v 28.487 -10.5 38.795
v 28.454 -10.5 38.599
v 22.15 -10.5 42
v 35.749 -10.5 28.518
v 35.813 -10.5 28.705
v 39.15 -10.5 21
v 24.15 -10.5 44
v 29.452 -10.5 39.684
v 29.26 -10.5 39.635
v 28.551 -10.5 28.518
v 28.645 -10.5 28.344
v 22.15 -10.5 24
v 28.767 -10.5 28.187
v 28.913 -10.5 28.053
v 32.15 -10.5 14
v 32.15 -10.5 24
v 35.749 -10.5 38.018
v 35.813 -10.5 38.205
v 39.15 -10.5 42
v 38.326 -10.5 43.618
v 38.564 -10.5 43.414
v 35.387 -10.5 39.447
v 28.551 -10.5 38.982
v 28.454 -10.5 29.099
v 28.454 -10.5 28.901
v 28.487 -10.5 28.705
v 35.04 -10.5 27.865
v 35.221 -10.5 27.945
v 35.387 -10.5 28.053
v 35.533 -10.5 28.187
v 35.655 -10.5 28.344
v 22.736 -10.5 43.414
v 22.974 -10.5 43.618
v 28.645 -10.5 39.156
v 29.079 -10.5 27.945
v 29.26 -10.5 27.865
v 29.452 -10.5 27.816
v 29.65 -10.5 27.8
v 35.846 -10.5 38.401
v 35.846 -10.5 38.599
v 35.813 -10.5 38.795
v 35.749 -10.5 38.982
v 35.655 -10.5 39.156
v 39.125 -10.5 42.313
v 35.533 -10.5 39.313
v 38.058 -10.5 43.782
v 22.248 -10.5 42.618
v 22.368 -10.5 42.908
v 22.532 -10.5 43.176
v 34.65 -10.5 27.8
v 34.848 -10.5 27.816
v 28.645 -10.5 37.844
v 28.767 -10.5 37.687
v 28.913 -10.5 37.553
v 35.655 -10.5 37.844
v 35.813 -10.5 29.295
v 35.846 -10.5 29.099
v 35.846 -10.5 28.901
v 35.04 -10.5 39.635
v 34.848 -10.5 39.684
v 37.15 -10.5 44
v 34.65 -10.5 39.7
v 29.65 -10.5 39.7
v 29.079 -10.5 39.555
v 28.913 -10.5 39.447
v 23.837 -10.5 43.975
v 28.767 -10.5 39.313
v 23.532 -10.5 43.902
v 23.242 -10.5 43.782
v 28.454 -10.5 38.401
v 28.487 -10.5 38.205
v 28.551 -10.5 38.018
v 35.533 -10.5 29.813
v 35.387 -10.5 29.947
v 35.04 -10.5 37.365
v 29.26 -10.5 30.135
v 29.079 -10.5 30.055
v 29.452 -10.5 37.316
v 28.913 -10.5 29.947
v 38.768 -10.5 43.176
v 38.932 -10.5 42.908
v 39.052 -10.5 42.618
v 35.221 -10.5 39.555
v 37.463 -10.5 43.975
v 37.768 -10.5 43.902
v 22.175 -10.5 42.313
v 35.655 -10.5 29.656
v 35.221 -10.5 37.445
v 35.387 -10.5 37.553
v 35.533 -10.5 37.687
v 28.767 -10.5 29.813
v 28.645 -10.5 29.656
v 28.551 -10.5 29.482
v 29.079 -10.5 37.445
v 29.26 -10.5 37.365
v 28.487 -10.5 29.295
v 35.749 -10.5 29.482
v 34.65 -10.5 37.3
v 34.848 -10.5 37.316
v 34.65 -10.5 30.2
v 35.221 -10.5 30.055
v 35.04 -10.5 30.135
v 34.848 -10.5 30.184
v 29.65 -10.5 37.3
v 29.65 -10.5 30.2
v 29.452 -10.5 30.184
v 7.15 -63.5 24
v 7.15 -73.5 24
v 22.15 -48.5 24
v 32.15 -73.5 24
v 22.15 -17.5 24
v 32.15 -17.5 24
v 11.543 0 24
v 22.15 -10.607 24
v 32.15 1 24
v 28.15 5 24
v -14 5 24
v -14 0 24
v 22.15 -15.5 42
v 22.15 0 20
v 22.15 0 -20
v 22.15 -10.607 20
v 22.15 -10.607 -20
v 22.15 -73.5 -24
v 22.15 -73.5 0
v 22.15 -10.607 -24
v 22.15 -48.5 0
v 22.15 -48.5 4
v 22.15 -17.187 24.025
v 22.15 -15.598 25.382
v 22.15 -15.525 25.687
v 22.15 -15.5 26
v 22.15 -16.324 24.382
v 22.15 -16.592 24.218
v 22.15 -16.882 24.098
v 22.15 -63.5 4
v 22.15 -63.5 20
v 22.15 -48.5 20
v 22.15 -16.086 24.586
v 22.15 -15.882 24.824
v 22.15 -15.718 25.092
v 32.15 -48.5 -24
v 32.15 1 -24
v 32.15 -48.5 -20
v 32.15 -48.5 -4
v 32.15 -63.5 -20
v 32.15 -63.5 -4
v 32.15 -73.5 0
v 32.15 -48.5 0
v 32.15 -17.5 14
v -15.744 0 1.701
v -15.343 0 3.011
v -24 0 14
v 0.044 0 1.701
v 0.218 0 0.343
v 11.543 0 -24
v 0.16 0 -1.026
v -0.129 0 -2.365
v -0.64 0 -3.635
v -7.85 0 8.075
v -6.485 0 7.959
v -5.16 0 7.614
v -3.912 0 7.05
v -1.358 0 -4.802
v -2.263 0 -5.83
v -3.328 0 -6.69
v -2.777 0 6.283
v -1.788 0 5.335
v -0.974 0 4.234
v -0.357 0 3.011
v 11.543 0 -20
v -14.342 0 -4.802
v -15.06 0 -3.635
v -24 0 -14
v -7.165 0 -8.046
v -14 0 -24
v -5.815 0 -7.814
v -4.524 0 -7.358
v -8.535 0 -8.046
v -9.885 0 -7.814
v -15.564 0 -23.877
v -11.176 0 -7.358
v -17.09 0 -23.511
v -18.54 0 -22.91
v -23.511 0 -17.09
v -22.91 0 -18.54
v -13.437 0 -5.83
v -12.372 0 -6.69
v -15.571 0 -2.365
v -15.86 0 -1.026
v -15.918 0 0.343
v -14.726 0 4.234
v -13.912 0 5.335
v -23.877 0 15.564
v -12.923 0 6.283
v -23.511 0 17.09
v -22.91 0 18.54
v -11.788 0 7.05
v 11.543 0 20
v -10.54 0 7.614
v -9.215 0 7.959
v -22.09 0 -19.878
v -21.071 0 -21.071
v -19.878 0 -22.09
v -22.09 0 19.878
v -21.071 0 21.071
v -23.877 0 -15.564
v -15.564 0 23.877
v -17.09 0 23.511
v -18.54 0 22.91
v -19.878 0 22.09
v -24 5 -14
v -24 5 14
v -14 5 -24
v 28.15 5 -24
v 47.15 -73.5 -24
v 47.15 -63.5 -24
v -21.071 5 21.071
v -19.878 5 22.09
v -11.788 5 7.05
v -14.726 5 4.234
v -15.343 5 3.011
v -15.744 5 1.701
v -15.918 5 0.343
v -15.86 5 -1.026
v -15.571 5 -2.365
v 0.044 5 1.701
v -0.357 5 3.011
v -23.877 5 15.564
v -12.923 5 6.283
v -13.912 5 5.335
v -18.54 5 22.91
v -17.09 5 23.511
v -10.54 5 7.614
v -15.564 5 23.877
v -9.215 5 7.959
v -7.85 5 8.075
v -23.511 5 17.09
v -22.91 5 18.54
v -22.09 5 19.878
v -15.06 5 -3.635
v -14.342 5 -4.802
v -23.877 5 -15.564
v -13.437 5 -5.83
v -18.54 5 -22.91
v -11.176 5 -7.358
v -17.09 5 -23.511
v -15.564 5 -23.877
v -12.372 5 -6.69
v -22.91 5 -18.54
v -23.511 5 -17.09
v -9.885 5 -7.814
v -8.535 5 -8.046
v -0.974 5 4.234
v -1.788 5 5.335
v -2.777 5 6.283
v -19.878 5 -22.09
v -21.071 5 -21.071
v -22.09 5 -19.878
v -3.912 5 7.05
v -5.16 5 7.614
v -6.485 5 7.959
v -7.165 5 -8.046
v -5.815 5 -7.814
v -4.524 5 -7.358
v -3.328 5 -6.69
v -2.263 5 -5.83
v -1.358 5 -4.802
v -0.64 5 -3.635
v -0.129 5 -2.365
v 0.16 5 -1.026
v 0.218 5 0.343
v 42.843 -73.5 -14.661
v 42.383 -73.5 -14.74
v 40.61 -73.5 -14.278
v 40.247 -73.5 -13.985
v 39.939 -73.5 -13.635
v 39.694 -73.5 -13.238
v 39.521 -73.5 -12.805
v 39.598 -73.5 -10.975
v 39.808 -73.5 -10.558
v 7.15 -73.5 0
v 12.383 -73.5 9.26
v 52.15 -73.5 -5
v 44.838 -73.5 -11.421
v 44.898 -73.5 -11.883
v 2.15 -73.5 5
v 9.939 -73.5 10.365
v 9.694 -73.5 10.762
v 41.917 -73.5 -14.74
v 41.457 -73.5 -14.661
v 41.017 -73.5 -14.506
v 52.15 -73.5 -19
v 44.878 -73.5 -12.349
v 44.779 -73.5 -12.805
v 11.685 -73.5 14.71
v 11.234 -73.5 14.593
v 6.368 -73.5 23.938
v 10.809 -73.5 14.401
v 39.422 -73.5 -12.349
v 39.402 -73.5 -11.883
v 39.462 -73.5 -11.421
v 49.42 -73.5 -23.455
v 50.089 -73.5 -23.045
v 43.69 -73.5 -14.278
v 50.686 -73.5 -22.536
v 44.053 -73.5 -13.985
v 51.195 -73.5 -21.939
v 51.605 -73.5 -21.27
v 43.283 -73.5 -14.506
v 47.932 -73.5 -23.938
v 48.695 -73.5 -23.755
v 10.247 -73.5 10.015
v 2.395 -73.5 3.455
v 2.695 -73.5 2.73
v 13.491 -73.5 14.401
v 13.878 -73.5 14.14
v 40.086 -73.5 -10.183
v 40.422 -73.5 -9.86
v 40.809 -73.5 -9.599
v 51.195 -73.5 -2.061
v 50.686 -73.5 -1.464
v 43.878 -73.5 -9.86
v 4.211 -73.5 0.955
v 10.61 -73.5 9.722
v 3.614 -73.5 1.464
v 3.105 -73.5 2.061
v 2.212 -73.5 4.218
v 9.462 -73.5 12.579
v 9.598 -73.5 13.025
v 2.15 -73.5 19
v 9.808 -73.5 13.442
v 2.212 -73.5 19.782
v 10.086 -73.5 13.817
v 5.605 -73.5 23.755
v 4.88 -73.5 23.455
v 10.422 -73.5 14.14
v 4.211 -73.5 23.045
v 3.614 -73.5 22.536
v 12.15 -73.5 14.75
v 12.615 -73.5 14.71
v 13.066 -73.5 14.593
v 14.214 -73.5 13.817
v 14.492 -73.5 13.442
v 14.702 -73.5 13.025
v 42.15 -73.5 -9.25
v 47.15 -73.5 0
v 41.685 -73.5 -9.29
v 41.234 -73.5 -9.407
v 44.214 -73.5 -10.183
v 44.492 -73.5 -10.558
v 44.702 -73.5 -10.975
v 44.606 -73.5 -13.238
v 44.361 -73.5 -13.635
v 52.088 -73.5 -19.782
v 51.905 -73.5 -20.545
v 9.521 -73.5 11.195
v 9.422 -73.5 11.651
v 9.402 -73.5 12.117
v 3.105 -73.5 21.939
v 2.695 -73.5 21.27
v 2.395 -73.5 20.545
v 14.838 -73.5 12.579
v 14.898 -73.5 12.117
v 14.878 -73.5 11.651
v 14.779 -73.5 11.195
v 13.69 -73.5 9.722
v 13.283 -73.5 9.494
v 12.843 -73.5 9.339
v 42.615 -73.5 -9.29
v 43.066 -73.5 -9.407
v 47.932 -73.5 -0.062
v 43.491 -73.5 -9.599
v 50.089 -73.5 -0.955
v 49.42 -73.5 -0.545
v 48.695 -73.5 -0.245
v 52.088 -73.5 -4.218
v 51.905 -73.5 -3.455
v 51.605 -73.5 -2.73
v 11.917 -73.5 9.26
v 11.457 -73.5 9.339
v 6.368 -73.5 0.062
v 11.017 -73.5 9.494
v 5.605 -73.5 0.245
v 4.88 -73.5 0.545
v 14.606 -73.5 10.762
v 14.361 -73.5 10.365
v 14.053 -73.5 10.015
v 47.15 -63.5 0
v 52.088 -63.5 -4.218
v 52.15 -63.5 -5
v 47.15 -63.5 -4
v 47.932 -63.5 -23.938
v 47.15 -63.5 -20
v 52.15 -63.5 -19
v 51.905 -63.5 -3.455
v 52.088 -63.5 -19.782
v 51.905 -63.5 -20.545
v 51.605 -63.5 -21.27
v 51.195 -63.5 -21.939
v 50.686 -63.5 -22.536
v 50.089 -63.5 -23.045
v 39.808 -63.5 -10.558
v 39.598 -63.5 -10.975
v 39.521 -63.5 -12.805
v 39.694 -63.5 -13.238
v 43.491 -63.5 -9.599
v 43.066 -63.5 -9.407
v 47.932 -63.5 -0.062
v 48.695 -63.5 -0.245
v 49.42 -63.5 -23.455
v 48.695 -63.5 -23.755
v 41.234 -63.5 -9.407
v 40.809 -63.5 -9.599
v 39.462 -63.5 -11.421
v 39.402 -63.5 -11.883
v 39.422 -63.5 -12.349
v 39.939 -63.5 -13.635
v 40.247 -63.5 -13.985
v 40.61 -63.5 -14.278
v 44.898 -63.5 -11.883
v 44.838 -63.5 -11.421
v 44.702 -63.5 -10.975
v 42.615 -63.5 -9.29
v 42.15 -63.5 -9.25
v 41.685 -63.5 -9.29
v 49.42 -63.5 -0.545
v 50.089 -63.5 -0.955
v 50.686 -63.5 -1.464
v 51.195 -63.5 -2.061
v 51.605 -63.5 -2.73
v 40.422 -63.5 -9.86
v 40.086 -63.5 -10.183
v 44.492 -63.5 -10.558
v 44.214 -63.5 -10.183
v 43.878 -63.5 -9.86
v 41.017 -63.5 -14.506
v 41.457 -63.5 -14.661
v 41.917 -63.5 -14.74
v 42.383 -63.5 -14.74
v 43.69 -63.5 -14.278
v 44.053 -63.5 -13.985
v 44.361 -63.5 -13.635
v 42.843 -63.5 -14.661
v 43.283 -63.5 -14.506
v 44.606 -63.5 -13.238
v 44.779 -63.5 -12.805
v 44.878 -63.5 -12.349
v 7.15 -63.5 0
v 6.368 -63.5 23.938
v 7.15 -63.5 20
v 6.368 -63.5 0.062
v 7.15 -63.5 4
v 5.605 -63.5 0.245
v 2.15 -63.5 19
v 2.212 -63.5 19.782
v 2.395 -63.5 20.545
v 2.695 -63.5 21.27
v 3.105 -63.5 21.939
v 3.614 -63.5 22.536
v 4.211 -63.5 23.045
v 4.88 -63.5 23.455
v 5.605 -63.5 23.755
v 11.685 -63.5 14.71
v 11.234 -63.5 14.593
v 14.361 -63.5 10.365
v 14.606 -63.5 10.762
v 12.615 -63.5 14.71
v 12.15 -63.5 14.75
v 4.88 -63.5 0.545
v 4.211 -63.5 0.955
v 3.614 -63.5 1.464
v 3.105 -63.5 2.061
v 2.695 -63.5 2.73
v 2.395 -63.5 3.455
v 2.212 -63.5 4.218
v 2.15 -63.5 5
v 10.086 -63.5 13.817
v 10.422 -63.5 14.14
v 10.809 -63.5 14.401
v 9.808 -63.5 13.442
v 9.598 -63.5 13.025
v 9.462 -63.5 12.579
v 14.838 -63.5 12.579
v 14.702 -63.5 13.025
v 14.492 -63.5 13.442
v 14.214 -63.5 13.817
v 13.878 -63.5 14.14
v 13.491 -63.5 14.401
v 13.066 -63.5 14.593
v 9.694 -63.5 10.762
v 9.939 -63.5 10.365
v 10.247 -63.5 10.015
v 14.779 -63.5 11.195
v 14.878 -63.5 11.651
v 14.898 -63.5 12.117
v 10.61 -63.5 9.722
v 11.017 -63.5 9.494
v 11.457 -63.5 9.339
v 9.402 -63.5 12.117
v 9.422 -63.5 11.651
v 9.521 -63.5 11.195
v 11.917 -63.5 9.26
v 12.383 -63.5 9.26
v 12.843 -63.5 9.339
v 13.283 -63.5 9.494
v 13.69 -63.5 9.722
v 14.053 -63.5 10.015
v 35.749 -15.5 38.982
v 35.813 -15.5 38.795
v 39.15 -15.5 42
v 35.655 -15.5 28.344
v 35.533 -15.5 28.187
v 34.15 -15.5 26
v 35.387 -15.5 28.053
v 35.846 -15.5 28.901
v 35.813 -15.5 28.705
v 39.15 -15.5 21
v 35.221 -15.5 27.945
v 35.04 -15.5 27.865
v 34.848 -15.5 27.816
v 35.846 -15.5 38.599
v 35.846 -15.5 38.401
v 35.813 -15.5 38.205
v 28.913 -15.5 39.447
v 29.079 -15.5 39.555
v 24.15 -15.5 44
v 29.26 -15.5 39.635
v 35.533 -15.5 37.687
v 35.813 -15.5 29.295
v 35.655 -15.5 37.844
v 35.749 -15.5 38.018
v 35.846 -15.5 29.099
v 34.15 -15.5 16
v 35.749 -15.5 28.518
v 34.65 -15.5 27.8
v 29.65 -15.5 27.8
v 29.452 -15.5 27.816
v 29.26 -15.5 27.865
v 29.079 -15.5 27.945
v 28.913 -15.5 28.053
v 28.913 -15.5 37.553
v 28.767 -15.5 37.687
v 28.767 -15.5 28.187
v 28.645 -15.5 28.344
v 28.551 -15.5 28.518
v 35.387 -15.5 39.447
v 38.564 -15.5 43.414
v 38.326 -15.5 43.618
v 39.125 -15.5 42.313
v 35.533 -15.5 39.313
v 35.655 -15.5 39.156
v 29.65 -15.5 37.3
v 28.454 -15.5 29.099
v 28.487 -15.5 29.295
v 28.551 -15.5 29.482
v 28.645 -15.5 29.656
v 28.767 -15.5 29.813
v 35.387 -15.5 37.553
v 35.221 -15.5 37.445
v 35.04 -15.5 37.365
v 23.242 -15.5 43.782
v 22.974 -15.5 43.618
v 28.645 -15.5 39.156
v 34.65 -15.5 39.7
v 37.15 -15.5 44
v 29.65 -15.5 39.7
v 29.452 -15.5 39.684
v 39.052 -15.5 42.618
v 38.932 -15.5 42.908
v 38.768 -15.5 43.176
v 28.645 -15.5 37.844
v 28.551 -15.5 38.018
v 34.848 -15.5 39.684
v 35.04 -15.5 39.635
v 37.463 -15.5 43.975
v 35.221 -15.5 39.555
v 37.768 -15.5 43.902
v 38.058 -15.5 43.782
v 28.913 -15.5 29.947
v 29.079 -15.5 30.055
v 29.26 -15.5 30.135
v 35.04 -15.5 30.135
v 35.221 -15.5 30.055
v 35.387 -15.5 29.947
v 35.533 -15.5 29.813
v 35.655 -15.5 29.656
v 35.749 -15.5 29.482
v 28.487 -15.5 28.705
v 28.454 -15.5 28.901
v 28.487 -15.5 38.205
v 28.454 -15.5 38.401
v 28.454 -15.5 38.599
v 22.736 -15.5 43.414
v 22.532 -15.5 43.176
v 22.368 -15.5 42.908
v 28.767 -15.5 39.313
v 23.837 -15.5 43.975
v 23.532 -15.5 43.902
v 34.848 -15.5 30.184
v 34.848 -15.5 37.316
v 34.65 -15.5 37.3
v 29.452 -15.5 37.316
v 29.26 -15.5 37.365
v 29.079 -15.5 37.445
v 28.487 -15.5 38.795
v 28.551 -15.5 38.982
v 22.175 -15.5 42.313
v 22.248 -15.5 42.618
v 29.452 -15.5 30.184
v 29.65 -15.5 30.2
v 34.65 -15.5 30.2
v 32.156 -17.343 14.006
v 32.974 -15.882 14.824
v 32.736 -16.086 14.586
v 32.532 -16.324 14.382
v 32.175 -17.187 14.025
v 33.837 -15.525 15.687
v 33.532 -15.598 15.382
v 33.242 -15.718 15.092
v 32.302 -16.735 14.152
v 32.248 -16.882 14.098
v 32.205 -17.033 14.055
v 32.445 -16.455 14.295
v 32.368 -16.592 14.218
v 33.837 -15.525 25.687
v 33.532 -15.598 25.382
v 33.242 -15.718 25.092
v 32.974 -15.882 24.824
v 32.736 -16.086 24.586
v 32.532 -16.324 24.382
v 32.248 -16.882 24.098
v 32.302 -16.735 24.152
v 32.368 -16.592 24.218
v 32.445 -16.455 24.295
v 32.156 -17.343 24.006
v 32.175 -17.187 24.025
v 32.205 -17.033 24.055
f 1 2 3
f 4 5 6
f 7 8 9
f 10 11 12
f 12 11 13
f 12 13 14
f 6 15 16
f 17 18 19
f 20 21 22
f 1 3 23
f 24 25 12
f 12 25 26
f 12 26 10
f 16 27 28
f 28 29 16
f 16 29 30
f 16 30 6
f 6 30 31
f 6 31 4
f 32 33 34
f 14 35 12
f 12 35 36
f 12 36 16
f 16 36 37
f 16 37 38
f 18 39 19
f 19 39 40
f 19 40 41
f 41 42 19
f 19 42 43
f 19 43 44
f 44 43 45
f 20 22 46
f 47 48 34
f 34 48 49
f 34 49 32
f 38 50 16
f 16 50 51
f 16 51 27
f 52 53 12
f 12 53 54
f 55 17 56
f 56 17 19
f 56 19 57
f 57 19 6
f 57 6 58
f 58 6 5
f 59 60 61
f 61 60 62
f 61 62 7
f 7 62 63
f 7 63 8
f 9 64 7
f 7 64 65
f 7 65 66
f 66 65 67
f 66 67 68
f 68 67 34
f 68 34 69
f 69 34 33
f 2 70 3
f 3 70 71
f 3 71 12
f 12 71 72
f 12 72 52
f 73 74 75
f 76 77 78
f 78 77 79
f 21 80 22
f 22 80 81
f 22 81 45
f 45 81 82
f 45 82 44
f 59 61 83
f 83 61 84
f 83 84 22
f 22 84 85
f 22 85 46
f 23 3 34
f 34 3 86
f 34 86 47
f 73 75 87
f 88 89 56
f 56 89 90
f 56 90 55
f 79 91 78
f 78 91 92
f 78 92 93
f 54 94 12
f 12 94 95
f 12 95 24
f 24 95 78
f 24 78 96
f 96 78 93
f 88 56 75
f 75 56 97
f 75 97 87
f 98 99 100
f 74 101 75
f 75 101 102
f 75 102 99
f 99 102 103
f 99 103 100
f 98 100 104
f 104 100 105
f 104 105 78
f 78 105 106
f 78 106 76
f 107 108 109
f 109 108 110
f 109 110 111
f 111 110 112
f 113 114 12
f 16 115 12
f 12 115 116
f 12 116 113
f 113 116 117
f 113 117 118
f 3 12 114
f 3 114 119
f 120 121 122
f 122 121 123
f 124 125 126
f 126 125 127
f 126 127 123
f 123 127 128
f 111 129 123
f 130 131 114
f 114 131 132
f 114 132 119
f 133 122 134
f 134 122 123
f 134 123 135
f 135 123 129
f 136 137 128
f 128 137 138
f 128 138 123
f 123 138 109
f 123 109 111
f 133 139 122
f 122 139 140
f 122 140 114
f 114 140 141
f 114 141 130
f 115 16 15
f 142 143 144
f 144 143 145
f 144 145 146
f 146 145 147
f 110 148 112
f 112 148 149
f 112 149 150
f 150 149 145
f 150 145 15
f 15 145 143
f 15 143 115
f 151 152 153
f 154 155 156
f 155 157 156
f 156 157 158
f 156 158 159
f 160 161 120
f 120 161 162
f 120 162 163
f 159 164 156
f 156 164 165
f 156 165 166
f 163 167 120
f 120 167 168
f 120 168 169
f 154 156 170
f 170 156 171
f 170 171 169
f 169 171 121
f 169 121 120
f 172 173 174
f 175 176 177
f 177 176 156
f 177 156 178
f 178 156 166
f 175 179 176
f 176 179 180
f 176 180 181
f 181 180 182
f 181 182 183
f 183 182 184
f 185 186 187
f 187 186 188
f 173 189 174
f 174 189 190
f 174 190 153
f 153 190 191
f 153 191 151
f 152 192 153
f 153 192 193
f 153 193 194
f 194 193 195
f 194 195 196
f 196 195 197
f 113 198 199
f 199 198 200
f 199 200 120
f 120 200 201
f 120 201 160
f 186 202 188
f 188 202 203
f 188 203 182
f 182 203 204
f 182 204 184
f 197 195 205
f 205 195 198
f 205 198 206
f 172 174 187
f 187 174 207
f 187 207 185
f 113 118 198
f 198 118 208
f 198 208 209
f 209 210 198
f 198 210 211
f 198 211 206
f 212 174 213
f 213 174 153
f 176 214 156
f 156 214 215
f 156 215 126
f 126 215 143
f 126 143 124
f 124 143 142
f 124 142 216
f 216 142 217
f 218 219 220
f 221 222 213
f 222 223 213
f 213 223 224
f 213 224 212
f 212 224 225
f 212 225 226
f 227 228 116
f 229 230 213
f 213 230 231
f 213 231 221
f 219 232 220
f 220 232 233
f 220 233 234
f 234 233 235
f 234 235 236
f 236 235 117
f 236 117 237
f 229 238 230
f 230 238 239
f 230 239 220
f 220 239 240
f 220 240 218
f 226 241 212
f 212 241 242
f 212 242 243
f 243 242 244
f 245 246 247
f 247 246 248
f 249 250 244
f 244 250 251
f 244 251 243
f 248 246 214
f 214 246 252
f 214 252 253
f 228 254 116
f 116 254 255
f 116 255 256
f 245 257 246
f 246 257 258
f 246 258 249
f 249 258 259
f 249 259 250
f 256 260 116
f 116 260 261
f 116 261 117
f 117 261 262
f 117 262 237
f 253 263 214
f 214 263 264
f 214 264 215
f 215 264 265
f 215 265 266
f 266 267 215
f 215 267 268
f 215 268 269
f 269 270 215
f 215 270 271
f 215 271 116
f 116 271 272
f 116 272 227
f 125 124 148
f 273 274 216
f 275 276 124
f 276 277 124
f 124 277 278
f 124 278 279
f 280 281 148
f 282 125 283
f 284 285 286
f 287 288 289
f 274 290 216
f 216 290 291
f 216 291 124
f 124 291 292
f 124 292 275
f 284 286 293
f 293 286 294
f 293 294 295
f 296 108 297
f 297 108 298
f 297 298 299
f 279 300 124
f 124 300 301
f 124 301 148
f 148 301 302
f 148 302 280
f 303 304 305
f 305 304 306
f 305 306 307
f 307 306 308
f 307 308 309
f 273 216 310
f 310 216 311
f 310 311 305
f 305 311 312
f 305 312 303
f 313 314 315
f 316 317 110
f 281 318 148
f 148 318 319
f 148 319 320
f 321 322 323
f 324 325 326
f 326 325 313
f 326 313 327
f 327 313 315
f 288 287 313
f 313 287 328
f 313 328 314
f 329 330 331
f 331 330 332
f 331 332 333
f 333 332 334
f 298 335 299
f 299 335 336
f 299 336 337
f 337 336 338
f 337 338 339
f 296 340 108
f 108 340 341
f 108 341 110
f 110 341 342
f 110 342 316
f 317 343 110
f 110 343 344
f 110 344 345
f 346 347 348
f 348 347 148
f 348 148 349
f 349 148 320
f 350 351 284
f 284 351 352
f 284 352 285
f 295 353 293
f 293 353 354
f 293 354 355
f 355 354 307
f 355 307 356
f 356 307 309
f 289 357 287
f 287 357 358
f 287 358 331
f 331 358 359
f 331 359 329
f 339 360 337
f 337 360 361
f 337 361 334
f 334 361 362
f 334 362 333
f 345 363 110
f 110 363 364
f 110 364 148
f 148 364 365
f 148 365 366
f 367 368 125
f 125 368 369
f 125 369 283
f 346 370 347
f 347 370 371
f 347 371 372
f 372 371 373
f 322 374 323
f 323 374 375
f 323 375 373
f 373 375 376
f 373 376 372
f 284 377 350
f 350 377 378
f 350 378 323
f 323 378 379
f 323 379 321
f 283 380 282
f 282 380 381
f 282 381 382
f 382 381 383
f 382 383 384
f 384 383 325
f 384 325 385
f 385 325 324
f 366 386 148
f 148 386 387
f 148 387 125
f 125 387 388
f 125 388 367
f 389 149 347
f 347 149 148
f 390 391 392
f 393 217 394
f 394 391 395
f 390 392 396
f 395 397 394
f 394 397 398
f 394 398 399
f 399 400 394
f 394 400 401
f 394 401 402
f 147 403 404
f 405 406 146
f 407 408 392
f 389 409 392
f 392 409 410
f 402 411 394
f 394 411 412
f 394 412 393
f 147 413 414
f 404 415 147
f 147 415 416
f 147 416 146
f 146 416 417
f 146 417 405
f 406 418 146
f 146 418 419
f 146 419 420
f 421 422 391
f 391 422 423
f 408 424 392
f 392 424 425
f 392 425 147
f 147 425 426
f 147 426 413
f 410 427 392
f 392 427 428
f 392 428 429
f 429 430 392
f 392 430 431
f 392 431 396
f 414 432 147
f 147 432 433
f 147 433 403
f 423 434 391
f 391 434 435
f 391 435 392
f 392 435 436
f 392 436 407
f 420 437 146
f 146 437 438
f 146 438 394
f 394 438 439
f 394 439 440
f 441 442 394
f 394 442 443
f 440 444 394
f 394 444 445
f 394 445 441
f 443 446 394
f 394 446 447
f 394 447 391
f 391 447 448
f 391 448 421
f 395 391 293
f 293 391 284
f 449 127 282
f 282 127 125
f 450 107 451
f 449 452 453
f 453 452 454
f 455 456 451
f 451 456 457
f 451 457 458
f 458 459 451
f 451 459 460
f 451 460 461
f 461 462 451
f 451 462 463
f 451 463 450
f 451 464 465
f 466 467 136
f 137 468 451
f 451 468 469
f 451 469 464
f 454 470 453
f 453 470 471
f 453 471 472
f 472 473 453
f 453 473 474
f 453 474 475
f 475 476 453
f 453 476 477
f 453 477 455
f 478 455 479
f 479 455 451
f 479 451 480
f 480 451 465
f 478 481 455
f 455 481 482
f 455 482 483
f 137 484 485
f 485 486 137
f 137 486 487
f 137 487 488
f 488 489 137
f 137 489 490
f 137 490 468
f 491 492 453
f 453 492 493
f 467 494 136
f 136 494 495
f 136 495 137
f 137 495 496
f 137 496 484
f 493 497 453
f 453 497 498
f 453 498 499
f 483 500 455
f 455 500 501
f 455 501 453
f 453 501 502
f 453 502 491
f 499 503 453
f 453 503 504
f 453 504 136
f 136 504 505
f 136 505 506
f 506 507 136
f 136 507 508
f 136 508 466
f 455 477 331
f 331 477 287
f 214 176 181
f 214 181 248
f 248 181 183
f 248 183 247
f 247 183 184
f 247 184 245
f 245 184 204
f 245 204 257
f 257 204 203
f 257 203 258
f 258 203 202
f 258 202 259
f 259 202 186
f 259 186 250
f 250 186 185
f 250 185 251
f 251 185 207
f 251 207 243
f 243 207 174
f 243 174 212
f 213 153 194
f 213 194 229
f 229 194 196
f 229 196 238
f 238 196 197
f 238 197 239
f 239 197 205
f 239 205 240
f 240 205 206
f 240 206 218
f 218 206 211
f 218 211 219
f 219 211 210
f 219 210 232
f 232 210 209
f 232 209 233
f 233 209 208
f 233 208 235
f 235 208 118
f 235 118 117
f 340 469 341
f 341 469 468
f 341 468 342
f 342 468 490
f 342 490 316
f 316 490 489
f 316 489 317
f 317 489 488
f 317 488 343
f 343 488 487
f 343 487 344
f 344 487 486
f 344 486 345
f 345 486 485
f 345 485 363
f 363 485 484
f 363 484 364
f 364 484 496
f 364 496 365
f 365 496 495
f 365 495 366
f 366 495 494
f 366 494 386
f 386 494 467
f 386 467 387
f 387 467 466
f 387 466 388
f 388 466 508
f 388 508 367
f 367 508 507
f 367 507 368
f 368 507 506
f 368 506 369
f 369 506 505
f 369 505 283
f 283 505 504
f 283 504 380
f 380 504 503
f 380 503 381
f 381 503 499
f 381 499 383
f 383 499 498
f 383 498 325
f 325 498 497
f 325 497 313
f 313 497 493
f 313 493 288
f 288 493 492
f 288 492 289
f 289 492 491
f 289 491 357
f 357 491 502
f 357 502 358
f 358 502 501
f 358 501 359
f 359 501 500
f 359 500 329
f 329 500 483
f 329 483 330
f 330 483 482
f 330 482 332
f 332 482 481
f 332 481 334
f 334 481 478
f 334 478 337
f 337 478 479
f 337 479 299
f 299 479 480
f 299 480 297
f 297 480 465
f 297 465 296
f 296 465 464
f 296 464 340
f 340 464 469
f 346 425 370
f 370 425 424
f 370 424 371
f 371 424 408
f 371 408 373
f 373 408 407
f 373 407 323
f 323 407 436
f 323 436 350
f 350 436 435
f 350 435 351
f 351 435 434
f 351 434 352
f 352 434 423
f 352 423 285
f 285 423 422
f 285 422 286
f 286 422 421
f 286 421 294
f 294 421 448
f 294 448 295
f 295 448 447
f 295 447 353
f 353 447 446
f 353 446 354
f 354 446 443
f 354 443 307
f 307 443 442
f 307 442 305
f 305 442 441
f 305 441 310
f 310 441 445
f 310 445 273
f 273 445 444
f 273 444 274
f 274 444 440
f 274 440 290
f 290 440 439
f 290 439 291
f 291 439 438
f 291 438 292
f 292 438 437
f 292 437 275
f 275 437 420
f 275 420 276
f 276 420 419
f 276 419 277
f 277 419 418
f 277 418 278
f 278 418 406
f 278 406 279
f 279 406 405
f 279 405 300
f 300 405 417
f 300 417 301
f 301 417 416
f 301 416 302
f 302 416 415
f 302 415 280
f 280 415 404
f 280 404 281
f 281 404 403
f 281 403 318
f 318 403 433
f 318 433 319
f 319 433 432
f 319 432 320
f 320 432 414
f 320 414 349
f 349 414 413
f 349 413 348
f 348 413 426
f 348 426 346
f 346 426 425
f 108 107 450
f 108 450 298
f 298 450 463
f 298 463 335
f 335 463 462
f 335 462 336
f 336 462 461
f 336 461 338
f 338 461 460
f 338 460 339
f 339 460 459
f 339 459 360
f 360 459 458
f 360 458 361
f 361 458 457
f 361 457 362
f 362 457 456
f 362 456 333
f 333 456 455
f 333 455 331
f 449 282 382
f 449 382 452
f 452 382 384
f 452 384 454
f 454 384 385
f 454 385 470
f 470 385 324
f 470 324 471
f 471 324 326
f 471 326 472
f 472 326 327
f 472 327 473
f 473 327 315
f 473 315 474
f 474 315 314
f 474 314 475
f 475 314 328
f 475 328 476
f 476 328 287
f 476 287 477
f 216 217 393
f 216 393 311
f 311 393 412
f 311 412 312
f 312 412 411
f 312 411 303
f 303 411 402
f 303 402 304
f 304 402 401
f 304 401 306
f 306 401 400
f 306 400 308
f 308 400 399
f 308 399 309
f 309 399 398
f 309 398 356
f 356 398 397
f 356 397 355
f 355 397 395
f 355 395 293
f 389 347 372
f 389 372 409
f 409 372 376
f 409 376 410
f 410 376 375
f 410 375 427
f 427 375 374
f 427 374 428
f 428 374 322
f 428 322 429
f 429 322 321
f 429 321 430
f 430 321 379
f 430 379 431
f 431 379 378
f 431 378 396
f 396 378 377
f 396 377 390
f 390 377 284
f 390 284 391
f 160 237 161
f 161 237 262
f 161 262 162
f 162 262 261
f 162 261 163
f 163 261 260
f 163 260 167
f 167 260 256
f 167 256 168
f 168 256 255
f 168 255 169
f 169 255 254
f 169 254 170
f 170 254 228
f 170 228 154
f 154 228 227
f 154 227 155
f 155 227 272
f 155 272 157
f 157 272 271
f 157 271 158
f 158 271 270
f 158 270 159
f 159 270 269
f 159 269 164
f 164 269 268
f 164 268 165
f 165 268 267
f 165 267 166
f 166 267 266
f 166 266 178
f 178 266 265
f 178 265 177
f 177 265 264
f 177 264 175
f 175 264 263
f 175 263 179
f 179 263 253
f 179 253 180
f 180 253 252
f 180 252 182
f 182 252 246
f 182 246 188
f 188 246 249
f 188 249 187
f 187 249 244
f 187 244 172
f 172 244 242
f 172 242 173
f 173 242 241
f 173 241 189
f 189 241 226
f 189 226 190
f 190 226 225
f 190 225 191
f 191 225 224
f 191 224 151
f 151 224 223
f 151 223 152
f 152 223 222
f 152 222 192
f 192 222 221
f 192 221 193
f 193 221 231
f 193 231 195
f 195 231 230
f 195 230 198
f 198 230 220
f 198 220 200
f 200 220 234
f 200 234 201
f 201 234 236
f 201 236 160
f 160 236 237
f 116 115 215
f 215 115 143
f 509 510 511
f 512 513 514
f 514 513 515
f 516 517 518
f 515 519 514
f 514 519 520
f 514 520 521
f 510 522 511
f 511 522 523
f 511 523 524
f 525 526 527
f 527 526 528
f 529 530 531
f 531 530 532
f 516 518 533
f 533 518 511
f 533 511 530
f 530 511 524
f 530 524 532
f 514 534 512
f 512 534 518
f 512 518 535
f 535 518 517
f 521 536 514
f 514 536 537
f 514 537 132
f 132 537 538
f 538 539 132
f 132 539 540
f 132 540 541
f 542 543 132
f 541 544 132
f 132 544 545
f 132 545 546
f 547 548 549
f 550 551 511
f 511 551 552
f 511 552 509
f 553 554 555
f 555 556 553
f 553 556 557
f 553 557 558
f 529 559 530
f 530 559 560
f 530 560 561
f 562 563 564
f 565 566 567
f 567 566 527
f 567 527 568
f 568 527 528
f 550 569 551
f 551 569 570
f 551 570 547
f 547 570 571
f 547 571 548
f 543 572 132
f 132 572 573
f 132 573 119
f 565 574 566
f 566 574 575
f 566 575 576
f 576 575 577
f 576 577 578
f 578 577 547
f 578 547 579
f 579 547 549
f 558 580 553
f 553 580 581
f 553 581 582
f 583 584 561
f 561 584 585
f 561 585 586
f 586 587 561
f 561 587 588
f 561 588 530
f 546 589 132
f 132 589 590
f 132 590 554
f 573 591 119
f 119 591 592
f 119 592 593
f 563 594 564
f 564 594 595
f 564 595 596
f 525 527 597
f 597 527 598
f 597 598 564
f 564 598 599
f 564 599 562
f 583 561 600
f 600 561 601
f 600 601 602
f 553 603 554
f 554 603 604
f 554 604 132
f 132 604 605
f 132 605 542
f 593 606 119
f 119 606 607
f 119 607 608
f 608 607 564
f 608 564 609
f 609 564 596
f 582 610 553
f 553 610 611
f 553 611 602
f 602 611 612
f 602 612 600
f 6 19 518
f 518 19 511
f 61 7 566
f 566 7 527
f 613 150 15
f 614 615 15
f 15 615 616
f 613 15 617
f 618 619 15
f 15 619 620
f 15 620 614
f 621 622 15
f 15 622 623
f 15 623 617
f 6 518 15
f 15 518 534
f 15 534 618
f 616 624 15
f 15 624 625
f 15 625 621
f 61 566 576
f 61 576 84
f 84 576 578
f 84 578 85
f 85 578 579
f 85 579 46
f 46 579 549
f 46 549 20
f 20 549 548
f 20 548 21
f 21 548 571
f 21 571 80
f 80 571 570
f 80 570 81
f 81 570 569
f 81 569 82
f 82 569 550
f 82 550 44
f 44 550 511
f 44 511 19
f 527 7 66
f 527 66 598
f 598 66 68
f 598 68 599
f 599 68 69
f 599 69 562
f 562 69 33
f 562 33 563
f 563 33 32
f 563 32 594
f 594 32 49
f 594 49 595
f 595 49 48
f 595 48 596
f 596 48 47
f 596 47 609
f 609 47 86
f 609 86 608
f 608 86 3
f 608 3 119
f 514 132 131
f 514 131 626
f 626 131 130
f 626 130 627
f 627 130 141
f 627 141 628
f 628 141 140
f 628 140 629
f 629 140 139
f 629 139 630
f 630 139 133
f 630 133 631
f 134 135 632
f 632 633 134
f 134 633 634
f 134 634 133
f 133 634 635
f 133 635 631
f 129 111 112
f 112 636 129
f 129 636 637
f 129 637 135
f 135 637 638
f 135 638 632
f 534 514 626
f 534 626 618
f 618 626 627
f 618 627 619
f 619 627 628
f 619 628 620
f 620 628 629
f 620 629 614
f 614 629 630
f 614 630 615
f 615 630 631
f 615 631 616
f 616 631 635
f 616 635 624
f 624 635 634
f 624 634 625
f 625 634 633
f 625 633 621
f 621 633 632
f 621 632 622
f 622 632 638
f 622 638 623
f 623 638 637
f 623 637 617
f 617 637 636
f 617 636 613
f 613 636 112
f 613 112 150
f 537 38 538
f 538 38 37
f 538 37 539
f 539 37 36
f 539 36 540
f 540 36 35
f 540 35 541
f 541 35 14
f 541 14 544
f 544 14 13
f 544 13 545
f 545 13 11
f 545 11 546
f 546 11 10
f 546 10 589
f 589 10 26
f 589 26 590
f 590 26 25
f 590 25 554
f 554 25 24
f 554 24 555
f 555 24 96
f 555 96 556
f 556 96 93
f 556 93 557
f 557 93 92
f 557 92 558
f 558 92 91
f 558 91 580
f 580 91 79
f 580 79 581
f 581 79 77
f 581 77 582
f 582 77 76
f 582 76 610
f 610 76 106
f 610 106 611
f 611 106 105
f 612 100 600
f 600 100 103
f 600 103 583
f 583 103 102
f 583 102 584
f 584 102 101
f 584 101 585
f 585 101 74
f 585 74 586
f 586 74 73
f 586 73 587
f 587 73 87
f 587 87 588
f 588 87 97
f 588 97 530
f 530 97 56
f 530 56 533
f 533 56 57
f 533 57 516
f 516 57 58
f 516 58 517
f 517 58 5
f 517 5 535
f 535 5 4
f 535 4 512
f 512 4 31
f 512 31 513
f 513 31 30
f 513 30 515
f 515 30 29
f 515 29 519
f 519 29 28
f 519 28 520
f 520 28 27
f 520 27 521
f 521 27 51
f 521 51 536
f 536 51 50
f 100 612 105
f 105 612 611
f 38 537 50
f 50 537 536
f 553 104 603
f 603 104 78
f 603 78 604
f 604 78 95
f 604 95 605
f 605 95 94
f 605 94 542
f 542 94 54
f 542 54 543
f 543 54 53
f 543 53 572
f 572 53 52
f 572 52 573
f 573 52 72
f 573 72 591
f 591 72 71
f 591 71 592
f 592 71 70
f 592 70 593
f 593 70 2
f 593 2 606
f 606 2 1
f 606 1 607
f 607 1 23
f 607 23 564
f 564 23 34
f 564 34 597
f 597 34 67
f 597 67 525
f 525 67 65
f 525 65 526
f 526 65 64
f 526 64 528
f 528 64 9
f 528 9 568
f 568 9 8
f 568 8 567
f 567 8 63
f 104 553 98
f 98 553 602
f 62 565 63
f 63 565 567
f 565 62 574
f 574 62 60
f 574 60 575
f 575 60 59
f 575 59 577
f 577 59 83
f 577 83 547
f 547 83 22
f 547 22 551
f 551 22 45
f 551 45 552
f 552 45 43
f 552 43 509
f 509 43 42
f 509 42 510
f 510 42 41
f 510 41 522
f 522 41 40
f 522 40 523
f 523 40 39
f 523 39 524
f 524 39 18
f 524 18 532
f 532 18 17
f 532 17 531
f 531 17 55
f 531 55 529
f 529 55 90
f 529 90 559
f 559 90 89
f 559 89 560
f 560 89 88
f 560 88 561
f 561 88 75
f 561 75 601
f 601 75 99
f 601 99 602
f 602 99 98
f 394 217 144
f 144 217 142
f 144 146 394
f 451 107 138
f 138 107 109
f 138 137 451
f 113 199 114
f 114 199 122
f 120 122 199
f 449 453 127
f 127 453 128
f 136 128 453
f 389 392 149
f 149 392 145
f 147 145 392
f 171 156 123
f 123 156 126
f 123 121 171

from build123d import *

# Parameters (mm, degrees)
SKETCH1_W                 = 56.15
SKETCH1_H                 = 48
BOSS_EXTRUDE1_DEPTH       = 5
SKETCH2_W                 = 10
SKETCH2_H                 = 48
BOSS_EXTRUDE2_DEPTH       = 73.5
SKETCH3_W                 = 24
SKETCH3_H                 = 10
BOSS_EXTRUDE3_DEPTH       = 20
SKETCH19_W                = 24
SKETCH19_H                = 10
BOSS_EXTRUDE5_DEPTH       = 20
FILLET1_R                 = 10
F_1_0MM_DOWEL_HOLE1_D     = 5.5
F_1_0MM_DOWEL_HOLE1_DEPTH = 10
FILLET2_R                 = 5
M6_CLEARANCE_HOLE1_D      = 16.15
CHAMFER2_SIZE             = 4
SKETCH14_W                = 17
SKETCH14_H                = 5
BOSS_EXTRUDE4_DEPTH       = 20
CHAMFER3_SIZE             = 10
FILLET3_R                 = 2
M2_START                  = -15.5
M2_CLEARANCE_SLOT1_DEPTH  = 5
RIB1_REACH                = 114.898
SKETCH20_WALL_W           = 249.008442536
SKETCH20_WALL_H           = 4
RIB2_REACH                = 104.107
SKETCH21_WALL_W           = 227.427527126
SKETCH21_WALL_H           = 4
RIB10_REACH               = 104.107
SKETCH23_WALL_W           = 221.21432369
SKETCH23_WALL_H           = 4


# Read off the part's stored shape, not the designer's step: M2 Clearance Slot1
with BuildPart() as part:
    # Sketch1 → Boss-Extrude1 (new body)
    with BuildSketch(Plane(origin=(0, 0, 0), x_dir=(1, 0, 0), z_dir=(0, 1, 0))):
        with Locations((4.075, 0)):
            Rectangle(SKETCH1_W, SKETCH1_H)
    extrude(amount=BOSS_EXTRUDE1_DEPTH)

    # Sketch2 → Boss-Extrude2 (add)
    with BuildSketch(Plane.XZ):
        with Locations((27.15, 0)):
            Rectangle(SKETCH2_W, SKETCH2_H)
    extrude(amount=BOSS_EXTRUDE2_DEPTH)

    # Sketch3 → Boss-Extrude3 (add)
    with BuildSketch(Plane(origin=(32.15, 0, 0), x_dir=(0, 0, -1), z_dir=(1, 0, 0))):
        with Locations((12, -68.5)):
            Rectangle(SKETCH3_W, SKETCH3_H)
    extrude(amount=BOSS_EXTRUDE3_DEPTH)

    # Sketch19 → Boss-Extrude5 (add)
    with BuildSketch(Plane(origin=(22.15, 0, -25.5), x_dir=(0, 0, 1), z_dir=(-1, 0, 0))):
        with Locations((37.5, -68.5)):
            Rectangle(SKETCH19_W, SKETCH19_H)
    extrude(amount=BOSS_EXTRUDE5_DEPTH)

    # Fillet1
    fillet1_edges = [part.edges().sort_by_distance(p)[0] for p in [
        (-24, 2.5, -24),
        (-24, 2.5, 24),
    ]]
    fillet(fillet1_edges, radius=FILLET1_R)

    # Ø1.0mm Dowel Hole1
    with Locations(Plane(origin=(0, -63.5, 0), x_dir=(1, 0, 0), z_dir=(0, 1, 0))):
        with Locations((42.15, 12), (12.15, -12)):
            Hole(F_1_0MM_DOWEL_HOLE1_D / 2, depth=F_1_0MM_DOWEL_HOLE1_DEPTH)

    # Fillet2
    fillet2_edges = [part.edges().sort_by_distance(p)[0] for p in [
        (52.15, -68.5, 0),
        (52.15, -68.5, -24),
        (2.15, -68.5, 0),
        (2.15, -68.5, 24),
    ]]
    fillet(fillet2_edges, radius=FILLET2_R)

    # M6 Clearance Hole1 (through all)
    with Locations(Plane(origin=(0, 5, 0), x_dir=(1, 0, 0), z_dir=(0, 1, 0))):
        with Locations((-7.85, 0)):
            Hole(M6_CLEARANCE_HOLE1_D / 2)

    # Chamfer2
    chamfer2_edges = [part.edges().sort_by_distance(p)[0] for p in [
        (32.15, 5, 0),
    ]]
    chamfer(chamfer2_edges, length=CHAMFER2_SIZE)

    # Sketch14 → Boss-Extrude4 (add)
    with BuildSketch(Plane.XY.offset(24)):
        with Locations((30.65, -13)):
            Rectangle(SKETCH14_W, SKETCH14_H)
    extrude(amount=BOSS_EXTRUDE4_DEPTH)

    # Chamfer3
    # the kernel refuses this chamfer: 10 mm, written as the material it adds along each edge
    with BuildSketch(Plane(origin=(32.15, -10.5, 24), x_dir=(-0.027495876610586317, 0, -0.9996219169112968), z_dir=(0, -1, 0))) as chamfer3_piece_1_section:
        Polygon((CHAMFER3_SIZE * 0.999621916911, CHAMFER3_SIZE * 0.0274958766106), (-CHAMFER3_SIZE * 0.0274958766106, CHAMFER3_SIZE * 0.999621916911), (0, 0), align=None)
    chamfer3_piece_1 = extrude(amount=5, mode=Mode.PRIVATE)
    chamfer3_piece_1 = split(chamfer3_piece_1, bisect_by=Plane(origin=(39.15, -13, 20.435897436), z_dir=(-1, 0, 0)), keep=Keep.TOP, mode=Mode.PRIVATE)
    add(chamfer3_piece_1)

    # Fillet3
    fillet3_edges = [part.edges().sort_by_distance(p)[0] for p in [
        (27.15, -15.5, 24),
        (22.15, -13, 44),
        (39.15, -13, 44),
        (32.15, -15.5, 19),
    ]]
    fillet(fillet3_edges, radius=FILLET3_R)

    # M2 Clearance Slot1 outline → M2 Clearance Slot1 (cut)
    with BuildSketch(Plane(origin=(0, 0, 0), x_dir=(1, 0, 0), z_dir=(0, 1, 0)).offset(M2_START)):
        with BuildLine():
            Line((34.65, -27.8), (29.65, -27.8))
            ThreePointArc((29.65, -27.8), (28.45, -29), (29.65, -30.2))
            Line((29.65, -30.2), (34.65, -30.2))
            ThreePointArc((34.65, -30.2), (35.85, -29), (34.65, -27.8))
        make_face()
        with BuildLine():
            Line((34.65, -37.3), (29.65, -37.3))
            ThreePointArc((29.65, -37.3), (28.45, -38.5), (29.65, -39.7))
            Line((29.65, -39.7), (34.65, -39.7))
            ThreePointArc((34.65, -39.7), (35.85, -38.5), (34.65, -37.3))
        make_face()
    extrude(amount=M2_CLEARANCE_SLOT1_DEPTH, mode=Mode.SUBTRACT)

    # Sketch20 wall → Rib1 (add, up to next)
    with BuildSketch(Plane(origin=(39.65, -56, -24), x_dir=(-0.707106781187, 0.707106781187, 0), z_dir=(0.707106781187, 0.707106781187, 0)), mode=Mode.PRIVATE) as rib1_sk1:
        with Locations((0, 2)):
            Rectangle(SKETCH20_WALL_W, SKETCH20_WALL_H)
    rib1_tool1 = extrude(rib1_sk1.sketch, amount=-RIB1_REACH, mode=Mode.PRIVATE) - part.part
    rib1 = rib1_tool1.solids().sort_by_distance((39.65, -56, -24))[0]
    add(rib1)

    # Sketch21 wall → Rib2 (add, up to next)
    with BuildSketch(Plane(origin=(14.65, -56, 24), x_dir=(0.707106781187, 0.707106781187, 0), z_dir=(-0.707106781187, 0.707106781187, 0)), mode=Mode.PRIVATE) as rib2_sk1:
        with Locations((0, 2)):
            Rectangle(SKETCH21_WALL_W, SKETCH21_WALL_H)
    rib2_tool1 = extrude(rib2_sk1.sketch, amount=-RIB2_REACH, mode=Mode.PRIVATE) - part.part
    rib2 = rib2_tool1.solids().sort_by_distance((14.65, -56, 24))[0]
    add(rib2)

    # Sketch23 wall → Rib10 (add, up to next)
    with BuildSketch(Plane(origin=(16.846699141, -5.303300859, 24), x_dir=(-0.707106781187, 0.707106781187, 0), z_dir=(-0.707106781187, -0.707106781187, 0)), mode=Mode.PRIVATE) as rib10_sk1:
        with Locations((0, 2)):
            Rectangle(SKETCH23_WALL_W, SKETCH23_WALL_H)
    rib10_tool1 = extrude(rib10_sk1.sketch, amount=-RIB10_REACH, mode=Mode.PRIVATE) - part.part
    rib10 = rib10_tool1.solids().sort_by_distance((16.846699141, -5.303300859, 24))[0]
    add(rib10)

    # Mirror1: Rib2 across plane
    add(rib2.mirror(Plane(origin=(2.15, -63.5, 12), x_dir=(1, 0, 0), z_dir=(0, 0, 1))))

    # Mirror2: Rib1 across plane
    add(rib1.mirror(Plane(origin=(52.15, -63.5, -12), x_dir=(1, 0, 0), z_dir=(0, 0, -1))))

    # Mirror3: Rib10 across plane
    add(rib10.mirror(Plane.XY))


solid = part.part
